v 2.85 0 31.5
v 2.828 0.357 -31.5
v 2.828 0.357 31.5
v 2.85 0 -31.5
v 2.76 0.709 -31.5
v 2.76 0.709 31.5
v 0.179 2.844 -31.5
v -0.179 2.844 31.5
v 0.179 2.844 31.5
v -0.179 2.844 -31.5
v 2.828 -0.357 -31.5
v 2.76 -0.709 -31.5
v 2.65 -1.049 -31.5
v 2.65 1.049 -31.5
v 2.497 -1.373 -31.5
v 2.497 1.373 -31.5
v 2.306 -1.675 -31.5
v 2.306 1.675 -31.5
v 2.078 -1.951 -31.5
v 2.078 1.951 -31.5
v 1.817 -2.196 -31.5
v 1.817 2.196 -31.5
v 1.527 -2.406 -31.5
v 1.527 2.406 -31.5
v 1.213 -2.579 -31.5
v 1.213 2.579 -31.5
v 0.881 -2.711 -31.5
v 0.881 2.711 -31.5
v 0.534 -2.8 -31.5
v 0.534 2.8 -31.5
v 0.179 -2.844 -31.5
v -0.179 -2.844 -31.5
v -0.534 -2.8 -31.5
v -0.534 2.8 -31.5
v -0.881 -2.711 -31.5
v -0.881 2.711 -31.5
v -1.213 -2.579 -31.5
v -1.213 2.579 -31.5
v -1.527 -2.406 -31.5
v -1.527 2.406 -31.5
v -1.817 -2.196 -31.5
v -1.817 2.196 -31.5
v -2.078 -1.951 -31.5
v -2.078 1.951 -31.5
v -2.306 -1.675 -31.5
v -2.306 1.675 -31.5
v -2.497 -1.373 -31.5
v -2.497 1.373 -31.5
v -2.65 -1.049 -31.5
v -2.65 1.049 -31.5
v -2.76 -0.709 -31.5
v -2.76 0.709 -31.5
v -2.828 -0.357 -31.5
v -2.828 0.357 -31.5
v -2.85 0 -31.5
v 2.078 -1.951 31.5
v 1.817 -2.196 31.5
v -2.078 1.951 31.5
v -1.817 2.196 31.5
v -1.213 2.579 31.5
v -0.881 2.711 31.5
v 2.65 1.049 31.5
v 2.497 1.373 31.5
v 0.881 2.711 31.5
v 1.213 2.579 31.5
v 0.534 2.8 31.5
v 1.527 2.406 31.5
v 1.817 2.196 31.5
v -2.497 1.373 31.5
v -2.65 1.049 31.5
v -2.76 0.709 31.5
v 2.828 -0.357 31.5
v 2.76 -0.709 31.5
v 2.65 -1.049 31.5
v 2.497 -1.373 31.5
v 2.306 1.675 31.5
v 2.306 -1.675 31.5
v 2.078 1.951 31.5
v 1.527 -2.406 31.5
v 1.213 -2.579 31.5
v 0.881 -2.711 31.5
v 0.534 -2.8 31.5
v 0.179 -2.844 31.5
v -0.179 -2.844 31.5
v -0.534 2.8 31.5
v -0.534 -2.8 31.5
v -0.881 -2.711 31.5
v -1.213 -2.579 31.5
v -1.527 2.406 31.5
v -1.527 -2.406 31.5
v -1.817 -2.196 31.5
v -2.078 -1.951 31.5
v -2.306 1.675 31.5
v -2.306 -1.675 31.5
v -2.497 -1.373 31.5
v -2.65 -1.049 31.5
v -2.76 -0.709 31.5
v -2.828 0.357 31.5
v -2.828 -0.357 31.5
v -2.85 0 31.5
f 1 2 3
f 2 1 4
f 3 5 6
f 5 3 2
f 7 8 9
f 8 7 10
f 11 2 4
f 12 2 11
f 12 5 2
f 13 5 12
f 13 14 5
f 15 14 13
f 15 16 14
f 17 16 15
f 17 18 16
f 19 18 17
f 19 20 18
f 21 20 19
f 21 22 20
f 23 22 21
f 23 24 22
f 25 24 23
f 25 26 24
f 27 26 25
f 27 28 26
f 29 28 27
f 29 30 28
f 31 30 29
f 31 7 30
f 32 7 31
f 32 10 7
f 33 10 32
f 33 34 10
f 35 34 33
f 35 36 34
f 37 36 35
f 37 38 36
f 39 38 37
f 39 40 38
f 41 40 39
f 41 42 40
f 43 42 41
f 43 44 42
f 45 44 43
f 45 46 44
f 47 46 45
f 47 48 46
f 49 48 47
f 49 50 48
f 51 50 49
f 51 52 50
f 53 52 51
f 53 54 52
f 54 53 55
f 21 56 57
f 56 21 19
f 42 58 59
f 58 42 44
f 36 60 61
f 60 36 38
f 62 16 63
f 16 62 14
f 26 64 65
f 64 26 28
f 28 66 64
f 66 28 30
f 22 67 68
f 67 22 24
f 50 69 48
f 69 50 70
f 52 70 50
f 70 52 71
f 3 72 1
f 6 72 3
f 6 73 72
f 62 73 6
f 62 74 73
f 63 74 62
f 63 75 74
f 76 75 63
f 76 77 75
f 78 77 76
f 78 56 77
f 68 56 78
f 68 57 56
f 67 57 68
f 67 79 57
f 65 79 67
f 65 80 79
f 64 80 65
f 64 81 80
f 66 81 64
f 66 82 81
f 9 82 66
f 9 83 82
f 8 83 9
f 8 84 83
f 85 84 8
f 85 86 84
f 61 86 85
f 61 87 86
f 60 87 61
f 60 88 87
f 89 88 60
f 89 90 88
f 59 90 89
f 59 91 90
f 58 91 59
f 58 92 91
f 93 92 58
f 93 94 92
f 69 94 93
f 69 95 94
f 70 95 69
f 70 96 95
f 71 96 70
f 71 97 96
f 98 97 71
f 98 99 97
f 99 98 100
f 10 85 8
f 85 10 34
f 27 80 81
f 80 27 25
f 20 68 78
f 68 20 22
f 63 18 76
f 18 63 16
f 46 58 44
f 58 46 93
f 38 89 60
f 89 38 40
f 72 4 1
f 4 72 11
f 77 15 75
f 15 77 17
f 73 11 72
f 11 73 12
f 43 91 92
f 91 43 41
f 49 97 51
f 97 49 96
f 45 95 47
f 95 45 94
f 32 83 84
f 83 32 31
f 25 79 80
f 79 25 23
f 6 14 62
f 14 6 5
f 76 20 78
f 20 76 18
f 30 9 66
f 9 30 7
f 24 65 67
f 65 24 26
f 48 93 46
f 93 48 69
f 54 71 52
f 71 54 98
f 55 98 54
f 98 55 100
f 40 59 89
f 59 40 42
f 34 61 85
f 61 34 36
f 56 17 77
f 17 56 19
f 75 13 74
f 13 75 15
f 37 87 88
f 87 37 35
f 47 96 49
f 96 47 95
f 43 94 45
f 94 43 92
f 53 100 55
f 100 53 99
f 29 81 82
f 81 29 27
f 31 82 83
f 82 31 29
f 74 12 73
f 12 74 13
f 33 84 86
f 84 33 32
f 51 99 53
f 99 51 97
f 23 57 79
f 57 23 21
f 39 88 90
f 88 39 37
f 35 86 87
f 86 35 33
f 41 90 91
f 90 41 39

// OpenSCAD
$fn = 50;


difference() {
	union() {
		translate(v = [0, 0, -31.5000000000]) {
			cylinder(h = 63, r = 2.8500000000);
		}
	}
	union() {
		translate(v = [0, 0, -100.0000000000]) {
			cylinder(h = 200, r = 0);
		}
	}
}
